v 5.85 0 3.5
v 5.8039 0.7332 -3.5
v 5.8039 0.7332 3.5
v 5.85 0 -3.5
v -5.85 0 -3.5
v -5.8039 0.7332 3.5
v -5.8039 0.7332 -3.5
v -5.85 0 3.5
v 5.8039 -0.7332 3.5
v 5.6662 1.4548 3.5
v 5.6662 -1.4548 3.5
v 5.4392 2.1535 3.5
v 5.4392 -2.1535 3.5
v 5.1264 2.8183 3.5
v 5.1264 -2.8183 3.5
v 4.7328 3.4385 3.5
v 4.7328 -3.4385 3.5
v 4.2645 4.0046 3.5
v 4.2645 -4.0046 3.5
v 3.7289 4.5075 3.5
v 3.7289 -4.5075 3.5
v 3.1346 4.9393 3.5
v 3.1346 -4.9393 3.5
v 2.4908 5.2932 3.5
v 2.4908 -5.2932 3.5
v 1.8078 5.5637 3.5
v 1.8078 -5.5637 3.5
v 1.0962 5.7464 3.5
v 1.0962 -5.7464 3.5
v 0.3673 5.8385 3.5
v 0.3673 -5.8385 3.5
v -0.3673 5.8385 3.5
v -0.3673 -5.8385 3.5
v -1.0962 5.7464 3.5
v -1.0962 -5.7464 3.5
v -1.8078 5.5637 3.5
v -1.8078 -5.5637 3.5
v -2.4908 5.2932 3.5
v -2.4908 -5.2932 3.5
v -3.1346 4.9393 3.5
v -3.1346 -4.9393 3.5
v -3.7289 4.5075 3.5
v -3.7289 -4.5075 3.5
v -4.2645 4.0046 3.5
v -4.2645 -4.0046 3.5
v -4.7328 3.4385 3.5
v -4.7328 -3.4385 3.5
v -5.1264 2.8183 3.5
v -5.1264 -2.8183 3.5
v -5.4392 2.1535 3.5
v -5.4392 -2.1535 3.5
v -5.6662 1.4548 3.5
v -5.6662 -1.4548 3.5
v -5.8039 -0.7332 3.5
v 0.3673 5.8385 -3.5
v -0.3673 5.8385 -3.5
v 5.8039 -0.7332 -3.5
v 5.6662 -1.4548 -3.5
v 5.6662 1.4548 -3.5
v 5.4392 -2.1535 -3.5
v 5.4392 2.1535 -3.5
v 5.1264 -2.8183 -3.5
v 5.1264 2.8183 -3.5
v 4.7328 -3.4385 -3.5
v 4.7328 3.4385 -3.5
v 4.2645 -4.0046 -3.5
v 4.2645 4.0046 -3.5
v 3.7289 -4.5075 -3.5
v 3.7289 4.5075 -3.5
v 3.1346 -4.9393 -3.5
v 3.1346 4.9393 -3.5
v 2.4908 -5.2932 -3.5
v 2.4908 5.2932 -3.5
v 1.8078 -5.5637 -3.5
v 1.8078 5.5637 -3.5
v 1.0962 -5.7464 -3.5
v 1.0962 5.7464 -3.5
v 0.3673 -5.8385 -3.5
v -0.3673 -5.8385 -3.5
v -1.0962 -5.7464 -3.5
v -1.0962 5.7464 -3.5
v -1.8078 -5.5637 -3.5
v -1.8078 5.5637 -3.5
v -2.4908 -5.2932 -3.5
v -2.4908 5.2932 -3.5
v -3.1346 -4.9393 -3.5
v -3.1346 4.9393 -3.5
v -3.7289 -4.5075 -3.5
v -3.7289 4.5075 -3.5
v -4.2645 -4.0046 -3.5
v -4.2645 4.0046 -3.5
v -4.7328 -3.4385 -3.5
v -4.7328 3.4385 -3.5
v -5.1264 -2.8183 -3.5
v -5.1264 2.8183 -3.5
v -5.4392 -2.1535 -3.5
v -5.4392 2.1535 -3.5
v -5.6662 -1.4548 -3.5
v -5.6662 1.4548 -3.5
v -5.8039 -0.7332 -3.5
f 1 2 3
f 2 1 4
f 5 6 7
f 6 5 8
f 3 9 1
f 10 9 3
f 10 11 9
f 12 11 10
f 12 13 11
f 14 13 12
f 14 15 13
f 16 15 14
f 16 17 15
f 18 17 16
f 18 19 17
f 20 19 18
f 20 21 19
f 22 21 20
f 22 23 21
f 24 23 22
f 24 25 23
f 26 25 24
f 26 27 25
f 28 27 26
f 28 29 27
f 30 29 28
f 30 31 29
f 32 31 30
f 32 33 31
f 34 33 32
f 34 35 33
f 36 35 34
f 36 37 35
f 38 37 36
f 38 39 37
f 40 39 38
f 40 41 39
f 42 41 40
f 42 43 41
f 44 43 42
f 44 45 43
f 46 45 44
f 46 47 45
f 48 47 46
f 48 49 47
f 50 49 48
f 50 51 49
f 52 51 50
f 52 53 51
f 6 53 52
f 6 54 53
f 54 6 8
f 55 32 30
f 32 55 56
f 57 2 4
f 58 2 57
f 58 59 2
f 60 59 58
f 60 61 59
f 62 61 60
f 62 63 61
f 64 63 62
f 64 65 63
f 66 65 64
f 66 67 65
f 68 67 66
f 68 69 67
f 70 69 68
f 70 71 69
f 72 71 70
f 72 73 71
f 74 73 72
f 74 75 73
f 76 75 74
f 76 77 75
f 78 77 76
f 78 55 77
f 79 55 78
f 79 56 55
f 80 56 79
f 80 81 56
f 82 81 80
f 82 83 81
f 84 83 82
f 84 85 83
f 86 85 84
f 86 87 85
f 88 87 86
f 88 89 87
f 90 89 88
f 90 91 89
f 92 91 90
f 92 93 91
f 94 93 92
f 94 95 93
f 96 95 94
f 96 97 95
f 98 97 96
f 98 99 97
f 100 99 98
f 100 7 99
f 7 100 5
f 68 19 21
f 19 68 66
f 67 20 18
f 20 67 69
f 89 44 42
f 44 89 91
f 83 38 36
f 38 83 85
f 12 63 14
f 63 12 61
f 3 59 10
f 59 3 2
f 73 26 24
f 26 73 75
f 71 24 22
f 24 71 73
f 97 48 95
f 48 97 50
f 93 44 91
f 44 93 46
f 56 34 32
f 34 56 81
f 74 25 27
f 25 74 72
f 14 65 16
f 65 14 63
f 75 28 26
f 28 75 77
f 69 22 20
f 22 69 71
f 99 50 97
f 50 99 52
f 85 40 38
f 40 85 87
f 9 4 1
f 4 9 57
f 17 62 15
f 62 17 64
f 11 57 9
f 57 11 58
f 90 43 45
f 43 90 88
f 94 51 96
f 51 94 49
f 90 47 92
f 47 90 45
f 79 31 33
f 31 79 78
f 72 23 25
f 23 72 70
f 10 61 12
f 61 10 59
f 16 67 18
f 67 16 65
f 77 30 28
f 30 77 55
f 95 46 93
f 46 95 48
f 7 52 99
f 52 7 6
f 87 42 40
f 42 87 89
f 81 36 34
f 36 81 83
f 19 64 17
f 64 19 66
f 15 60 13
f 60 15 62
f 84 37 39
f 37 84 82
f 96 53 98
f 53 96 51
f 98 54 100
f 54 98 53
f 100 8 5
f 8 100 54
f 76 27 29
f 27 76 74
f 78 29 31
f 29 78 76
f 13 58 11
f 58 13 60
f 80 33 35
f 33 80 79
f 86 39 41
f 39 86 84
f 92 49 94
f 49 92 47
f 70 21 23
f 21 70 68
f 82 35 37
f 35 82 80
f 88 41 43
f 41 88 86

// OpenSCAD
$fn = 50;


difference() {
	union() {
		translate(v = [0, 0, -3.5000000000]) {
			cylinder(h = 7, r = 5.8500000000);
		}
	}
	union() {
		translate(v = [0, 0, -100.0000000000]) {
			cylinder(h = 200, r = 0);
		}
	}
}
